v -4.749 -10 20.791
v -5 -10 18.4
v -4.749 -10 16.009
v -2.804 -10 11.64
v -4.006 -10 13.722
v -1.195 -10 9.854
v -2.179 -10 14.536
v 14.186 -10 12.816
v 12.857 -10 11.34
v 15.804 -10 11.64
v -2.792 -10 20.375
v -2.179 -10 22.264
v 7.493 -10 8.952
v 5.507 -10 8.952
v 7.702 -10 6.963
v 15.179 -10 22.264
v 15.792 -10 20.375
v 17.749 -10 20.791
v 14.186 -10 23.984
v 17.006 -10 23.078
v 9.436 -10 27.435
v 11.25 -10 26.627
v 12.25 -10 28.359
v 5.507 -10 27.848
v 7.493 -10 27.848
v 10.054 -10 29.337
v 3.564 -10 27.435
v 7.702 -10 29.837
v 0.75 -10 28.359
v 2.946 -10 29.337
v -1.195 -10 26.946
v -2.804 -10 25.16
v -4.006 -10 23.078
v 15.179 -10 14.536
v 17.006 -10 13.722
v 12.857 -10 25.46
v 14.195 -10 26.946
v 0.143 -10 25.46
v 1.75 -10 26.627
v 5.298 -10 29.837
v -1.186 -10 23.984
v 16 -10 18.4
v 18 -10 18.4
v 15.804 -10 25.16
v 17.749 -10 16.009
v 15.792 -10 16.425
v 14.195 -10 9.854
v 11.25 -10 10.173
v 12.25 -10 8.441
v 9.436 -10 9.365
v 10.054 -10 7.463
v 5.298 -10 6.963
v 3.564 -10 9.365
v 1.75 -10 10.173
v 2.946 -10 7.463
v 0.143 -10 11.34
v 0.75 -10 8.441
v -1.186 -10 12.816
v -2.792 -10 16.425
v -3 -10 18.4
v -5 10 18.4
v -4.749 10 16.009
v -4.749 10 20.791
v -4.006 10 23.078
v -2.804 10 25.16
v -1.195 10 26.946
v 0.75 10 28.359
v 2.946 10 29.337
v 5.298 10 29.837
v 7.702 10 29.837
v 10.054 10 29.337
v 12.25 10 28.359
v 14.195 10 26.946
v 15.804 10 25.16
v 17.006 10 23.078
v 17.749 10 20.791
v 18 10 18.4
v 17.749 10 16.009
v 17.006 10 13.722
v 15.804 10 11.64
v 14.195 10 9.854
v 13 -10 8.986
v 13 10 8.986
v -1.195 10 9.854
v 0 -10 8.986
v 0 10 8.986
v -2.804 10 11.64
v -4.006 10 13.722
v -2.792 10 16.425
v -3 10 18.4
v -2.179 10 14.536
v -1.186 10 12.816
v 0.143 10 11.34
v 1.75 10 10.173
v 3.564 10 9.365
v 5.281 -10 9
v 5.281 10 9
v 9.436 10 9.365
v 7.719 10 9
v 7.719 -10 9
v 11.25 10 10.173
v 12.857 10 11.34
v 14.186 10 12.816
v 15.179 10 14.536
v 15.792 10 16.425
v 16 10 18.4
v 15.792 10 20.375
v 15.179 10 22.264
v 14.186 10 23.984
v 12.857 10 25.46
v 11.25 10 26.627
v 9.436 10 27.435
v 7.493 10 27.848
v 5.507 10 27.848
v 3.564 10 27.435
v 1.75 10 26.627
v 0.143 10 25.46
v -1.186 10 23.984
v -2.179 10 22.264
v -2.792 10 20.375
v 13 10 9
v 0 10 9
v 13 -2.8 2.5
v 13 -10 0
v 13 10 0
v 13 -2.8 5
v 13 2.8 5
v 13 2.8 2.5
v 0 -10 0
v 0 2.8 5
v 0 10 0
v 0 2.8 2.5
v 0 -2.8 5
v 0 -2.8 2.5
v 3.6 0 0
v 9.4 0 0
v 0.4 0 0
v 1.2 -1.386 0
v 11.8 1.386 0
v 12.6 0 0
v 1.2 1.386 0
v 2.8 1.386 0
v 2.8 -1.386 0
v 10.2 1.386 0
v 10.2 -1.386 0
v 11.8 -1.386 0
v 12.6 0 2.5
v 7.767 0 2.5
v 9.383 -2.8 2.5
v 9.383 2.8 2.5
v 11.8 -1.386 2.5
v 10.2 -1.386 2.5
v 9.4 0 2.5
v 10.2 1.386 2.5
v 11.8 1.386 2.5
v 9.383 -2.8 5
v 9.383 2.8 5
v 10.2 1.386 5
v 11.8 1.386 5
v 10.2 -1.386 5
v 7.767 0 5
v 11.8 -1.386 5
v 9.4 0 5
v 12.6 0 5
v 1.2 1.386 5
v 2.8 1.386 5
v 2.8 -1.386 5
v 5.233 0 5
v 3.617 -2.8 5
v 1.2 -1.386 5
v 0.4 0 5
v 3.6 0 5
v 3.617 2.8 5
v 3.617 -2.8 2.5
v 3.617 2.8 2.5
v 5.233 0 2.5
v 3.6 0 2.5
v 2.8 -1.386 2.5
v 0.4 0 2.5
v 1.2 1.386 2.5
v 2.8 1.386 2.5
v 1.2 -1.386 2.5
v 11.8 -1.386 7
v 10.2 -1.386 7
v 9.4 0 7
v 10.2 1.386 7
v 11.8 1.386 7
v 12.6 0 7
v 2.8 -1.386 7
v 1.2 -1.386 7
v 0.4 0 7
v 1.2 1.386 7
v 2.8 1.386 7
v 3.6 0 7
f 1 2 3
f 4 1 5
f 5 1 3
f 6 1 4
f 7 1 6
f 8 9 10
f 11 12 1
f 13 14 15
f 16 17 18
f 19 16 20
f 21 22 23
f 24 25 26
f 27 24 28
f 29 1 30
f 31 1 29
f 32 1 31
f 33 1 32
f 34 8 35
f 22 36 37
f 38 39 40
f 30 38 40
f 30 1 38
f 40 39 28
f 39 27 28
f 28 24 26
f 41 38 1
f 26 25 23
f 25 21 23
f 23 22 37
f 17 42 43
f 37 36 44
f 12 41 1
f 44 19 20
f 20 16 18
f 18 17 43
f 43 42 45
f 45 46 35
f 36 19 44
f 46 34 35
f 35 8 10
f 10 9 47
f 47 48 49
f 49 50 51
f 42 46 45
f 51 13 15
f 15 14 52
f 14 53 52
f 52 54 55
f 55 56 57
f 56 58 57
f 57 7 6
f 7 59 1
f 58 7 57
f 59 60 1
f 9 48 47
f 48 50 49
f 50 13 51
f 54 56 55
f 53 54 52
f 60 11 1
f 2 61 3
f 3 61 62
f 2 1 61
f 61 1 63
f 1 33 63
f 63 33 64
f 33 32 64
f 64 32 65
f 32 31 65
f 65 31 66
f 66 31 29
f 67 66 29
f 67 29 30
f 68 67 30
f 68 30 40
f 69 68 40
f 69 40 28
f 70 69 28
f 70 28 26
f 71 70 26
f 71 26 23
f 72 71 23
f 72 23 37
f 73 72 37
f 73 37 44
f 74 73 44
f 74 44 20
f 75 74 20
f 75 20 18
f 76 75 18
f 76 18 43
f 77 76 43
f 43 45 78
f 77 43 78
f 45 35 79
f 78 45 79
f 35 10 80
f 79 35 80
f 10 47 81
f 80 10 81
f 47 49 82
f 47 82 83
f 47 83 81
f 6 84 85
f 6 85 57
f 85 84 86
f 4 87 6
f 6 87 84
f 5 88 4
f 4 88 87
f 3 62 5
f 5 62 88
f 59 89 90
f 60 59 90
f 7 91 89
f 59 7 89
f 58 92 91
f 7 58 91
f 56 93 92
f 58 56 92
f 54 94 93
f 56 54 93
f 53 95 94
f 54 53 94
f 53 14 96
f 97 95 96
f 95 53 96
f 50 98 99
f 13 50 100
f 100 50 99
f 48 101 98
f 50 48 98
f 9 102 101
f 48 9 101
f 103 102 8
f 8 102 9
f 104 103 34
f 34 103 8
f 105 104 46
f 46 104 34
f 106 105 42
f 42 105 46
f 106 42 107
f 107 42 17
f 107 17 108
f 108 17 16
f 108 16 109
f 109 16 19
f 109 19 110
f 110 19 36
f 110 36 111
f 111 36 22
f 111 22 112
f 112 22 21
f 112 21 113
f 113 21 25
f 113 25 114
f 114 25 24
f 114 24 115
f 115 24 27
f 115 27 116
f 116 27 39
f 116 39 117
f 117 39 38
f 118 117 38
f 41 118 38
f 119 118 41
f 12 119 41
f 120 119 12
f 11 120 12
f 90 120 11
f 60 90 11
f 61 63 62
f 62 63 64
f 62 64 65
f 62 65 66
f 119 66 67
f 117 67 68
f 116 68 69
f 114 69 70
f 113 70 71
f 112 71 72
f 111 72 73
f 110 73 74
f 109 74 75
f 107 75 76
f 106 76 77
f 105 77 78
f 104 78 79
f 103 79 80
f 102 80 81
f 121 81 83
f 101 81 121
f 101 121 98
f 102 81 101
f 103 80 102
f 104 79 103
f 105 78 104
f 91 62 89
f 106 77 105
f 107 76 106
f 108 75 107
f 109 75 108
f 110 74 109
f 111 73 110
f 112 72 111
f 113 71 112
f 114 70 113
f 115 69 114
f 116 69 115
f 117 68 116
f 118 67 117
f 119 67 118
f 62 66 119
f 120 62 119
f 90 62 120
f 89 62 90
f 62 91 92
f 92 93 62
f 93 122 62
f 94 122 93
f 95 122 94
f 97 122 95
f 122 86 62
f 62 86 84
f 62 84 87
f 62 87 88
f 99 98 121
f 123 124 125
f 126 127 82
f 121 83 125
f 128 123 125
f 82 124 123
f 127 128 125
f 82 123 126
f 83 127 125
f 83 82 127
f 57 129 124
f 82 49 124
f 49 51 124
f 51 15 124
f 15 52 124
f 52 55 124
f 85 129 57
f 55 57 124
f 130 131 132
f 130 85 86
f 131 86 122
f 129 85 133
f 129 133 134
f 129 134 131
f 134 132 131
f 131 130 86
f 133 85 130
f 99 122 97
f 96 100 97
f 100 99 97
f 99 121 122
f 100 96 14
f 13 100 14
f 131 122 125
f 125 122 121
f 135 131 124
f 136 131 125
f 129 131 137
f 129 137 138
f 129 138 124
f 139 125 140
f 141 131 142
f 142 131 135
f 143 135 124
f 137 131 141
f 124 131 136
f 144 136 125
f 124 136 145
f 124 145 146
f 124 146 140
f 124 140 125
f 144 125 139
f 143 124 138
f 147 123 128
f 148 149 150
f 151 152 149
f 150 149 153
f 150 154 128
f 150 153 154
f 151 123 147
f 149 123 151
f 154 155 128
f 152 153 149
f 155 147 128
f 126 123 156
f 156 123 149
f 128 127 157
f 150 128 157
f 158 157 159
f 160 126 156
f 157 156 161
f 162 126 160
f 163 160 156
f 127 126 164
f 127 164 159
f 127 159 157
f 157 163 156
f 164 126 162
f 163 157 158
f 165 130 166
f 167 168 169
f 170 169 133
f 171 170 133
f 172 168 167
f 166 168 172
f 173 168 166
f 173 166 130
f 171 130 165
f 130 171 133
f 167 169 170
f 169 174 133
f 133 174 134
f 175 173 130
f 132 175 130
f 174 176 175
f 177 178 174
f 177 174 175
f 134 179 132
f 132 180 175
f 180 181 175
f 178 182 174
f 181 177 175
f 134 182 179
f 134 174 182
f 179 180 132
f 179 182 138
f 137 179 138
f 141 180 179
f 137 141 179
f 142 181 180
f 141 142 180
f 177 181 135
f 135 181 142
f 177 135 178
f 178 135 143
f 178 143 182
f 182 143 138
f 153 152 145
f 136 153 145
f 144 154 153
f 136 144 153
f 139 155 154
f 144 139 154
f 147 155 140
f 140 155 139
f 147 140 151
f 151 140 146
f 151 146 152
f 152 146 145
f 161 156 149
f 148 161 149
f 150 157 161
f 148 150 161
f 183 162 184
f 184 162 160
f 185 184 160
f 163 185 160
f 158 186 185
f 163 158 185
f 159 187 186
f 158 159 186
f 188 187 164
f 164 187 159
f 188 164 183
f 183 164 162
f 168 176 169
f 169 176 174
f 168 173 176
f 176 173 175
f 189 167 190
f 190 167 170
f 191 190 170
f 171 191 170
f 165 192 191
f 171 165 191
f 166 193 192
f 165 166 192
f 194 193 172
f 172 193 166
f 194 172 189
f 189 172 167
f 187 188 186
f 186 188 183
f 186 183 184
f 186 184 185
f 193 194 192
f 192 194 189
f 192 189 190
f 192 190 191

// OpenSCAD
// file: nutsnbolts/data-access.scad
// Norm Nuts and Bolts - a OpenSCAD library
// Copyright (C) 2012  Johannes Kneer

// This program is free software: you can redistribute it and/or modify
// it under the terms of the GNU General Public License as published by
// the Free Software Foundation, either version 3 of the License, or
// (at your option) any later version.

// This program is distributed in the hope that it will be useful,
// but WITHOUT ANY WARRANTY; without even the implied warranty of
// MERCHANTABILITY or FITNESS FOR A PARTICULAR PURPOSE.  See the
// GNU General Public License for more details.

// You should have received a copy of the GNU General Public License
// along with this program.  If not, see <http://www.gnu.org/licenses/>.


// DATABASE ACCESS FUNCTIONS AND CONSTANTS



// == CONSTANTS ==

// screw table access keys
_NB_S_DESC            = 0;
_NB_S_FAMKEY			    = 1;
_NB_S_LENGTH          = 2;
_NB_S_NOTHREAD_LENGTH = 3;

_NB_F_DESC			      = 0;
_NB_F_OUTER_DIA       = 1;
_NB_F_INNER_DIA       = 2;
_NB_F_LEAD            = 3;
_NB_F_KEY             = 4;
_NB_F_KEY_DEPTH       = 5;
_NB_F_HEAD_HEIGHT     = 6;
_NB_F_HEAD_DIA        = 7;
_NB_F_NUT_KEY         = 8;
_NB_F_NUT_HEIGHT      = 9;
_NB_F_PITCH_FINE      = 10;
_NB_F_PITCH_MEDIUM    = 11;
_NB_F_PITCH_COARSE    = 12;


// == FUNCTIONS ==

// _get_screw("descriptor")   with descriptor = M8x25
//   find the line for a general object in the data matrix

function _get_screw(n) = data_screw[search([n], data_screw)[0]];
function _get_screw_fam(n) = data_screw_fam[search([_get_screw(n)[_NB_S_FAMKEY]], data_screw_fam)[0]];

function _get_fam(n) = data_screw_fam[search([n], data_screw_fam)[0]];


// _get_XXXXX("descriptor") functions
// find a single property in the database

function _get_desc(n)        = _get_screw(n)[_NB_S_DESC];
function _get_famkey(n)         = _get_screw(n)[_NB_S_FAMKEY];
function _get_length(n)      = _get_screw(n)[_NB_S_LENGTH];
function _get_nt_length(n)   = _get_screw(n)[_NB_S_NOTHREAD_LENGTH];

function _get_outer_dia(n)   = _get_screw_fam(n)[_NB_F_OUTER_DIA];
function _get_inner_dia(n)   = _get_screw_fam(n)[_NB_F_INNER_DIA];
function _get_lead(n)        = _get_screw_fam(n)[_NB_F_LEAD];
function _get_head_height(n) = _get_screw_fam(n)[_NB_F_HEAD_HEIGHT];
function _get_head_dia(n)    = _get_screw_fam(n)[_NB_F_HEAD_DIA];
function _get_nut_key(n)     = _get_screw_fam(n)[_NB_F_NUT_KEY];
function _get_nut_height(n)  = _get_screw_fam(n)[_NB_F_NUT_HEIGHT];
function _get_fine_pitch(n)  = _get_screw_fam(n)[_NB_F_PITCH_FINE];
function _get_medium_pitch(n)  = _get_screw_fam(n)[_NB_F_PITCH_MEDIUM];
function _get_coarse_pitch(n)  = _get_screw_fam(n)[_NB_F_PITCH_COARSE];
// file: nutsnbolts/materials.scad
// Norm Nuts and Bolts - a OpenSCAD library
// Copyright (C) 2012  Johannes Kneer

// This program is free software: you can redistribute it and/or modify
// it under the terms of the GNU General Public License as published by
// the Free Software Foundation, either version 3 of the License, or
// (at your option) any later version.

// This program is distributed in the hope that it will be useful,
// but WITHOUT ANY WARRANTY; without even the implied warranty of
// MERCHANTABILITY or FITNESS FOR A PARTICULAR PURPOSE.  See the
// GNU General Public License for more details.

// You should have received a copy of the GNU General Public License
// along with this program.  If not, see <http://www.gnu.org/licenses/>.


// MATERIALS

// all materials take a no-parameter that should be used to document
// the exact material in code, the number is not yet used in the code 



module stainless(no="1.4301") {
	color([0.45, 0.43, 0.5]) children([0:$children-1]);
}

module steel(no) {
	color([0.65, 0.67, 0.72]) children([0:$children-1]);
}

module iron(no="ST37") {
	color([0.36, 0.33, 0.33]) children([0:$children-1]);
}

// additional colors
CL_ZINC = [0.4, 0.4, 0.4];
// main file
// Made by Matthew Dirks - http://skylogic.ca

include <nutsnbolts/cyl_head_bolt.scad>;
include <nutsnbolts/materials.scad>;

//I have customized this part specifically to hold a LM10UU and to screw onto 
//a MendelMax 2.0

//"bottom of part" refers to the -z side
//(you would see the bottom if viewer located at z = -999 and looking toward origin)

//LM10UU: gap between where the "snap rings" should go is 20mm
// see http://www.thingiverse.com/thing:307608/#comments
gapBetweenSnapRings = 20;
//LM10UU has inside diameter 10mm, and outer diameter 19mm
LM10UU_outer = 19; 

//### Block containing holes for screws/nuts ###
screwGap = 9; //distance between the centers of the 2 screw holes
blockHeight = 9;
screwFromEdge = 2;
nutCatchGap = 5; //distance from bottom of part to top of nut catch
screwLength = 8; //if using M3-8, specify 8mm here. Will make screw hole this long.
blockWidthY = gapBetweenSnapRings;
blockLengthX = screwGap + 2*screwFromEdge;

yTranslate = (blockWidthY/2);

difference() {
	translate([0, -yTranslate, 0]) cube([blockLengthX, blockWidthY, blockHeight]);

	//Nutcatch & screw hole (1)
	translate([screwGap + screwFromEdge, 0, nutCatchGap]) nutcatch_sidecut("M3", l=100, clk=0.1, clh=0.1, clsl=0.1);
	translate([screwGap + screwFromEdge, 0, -11]) rotate(a=[180,0,0]) hole_through(name="M3", l=screwLength, cl=0.1, h=10, hcl=0.4);

	//Nutcatch & screw hole (2)
	translate([0 + screwFromEdge, 0, nutCatchGap]) rotate(a=[0,0,180]) nutcatch_sidecut("M3", l=100, clk=0.1, clh=0.1, clsl=0.1);
	translate([0 + screwFromEdge, 0, -11]) rotate(a=[180,0,0]) hole_through(name="M3", l=screwLength, cl=0.1, h=10, hcl=0.4);
}

//### Hollow cylinder that holds the LM10UU (linear slider) ###
height = gapBetweenSnapRings;
opening = 20;
thickness = 2;
cylHoleRadius = LM10UU_outer / 2;
cylOutsideRadius = cylHoleRadius + thickness;

blockCenter = blockLengthX/2;
cylY = 18.4;

translate([blockCenter, yTranslate, cylY])
rotate([90,0,0])
difference() {
	cylinder(r1=cylOutsideRadius, r2=cylOutsideRadius, h=height);
	translate([0,0,-1])
	cylinder(r1=cylHoleRadius, r2=cylHoleRadius, h=height+2);
}
